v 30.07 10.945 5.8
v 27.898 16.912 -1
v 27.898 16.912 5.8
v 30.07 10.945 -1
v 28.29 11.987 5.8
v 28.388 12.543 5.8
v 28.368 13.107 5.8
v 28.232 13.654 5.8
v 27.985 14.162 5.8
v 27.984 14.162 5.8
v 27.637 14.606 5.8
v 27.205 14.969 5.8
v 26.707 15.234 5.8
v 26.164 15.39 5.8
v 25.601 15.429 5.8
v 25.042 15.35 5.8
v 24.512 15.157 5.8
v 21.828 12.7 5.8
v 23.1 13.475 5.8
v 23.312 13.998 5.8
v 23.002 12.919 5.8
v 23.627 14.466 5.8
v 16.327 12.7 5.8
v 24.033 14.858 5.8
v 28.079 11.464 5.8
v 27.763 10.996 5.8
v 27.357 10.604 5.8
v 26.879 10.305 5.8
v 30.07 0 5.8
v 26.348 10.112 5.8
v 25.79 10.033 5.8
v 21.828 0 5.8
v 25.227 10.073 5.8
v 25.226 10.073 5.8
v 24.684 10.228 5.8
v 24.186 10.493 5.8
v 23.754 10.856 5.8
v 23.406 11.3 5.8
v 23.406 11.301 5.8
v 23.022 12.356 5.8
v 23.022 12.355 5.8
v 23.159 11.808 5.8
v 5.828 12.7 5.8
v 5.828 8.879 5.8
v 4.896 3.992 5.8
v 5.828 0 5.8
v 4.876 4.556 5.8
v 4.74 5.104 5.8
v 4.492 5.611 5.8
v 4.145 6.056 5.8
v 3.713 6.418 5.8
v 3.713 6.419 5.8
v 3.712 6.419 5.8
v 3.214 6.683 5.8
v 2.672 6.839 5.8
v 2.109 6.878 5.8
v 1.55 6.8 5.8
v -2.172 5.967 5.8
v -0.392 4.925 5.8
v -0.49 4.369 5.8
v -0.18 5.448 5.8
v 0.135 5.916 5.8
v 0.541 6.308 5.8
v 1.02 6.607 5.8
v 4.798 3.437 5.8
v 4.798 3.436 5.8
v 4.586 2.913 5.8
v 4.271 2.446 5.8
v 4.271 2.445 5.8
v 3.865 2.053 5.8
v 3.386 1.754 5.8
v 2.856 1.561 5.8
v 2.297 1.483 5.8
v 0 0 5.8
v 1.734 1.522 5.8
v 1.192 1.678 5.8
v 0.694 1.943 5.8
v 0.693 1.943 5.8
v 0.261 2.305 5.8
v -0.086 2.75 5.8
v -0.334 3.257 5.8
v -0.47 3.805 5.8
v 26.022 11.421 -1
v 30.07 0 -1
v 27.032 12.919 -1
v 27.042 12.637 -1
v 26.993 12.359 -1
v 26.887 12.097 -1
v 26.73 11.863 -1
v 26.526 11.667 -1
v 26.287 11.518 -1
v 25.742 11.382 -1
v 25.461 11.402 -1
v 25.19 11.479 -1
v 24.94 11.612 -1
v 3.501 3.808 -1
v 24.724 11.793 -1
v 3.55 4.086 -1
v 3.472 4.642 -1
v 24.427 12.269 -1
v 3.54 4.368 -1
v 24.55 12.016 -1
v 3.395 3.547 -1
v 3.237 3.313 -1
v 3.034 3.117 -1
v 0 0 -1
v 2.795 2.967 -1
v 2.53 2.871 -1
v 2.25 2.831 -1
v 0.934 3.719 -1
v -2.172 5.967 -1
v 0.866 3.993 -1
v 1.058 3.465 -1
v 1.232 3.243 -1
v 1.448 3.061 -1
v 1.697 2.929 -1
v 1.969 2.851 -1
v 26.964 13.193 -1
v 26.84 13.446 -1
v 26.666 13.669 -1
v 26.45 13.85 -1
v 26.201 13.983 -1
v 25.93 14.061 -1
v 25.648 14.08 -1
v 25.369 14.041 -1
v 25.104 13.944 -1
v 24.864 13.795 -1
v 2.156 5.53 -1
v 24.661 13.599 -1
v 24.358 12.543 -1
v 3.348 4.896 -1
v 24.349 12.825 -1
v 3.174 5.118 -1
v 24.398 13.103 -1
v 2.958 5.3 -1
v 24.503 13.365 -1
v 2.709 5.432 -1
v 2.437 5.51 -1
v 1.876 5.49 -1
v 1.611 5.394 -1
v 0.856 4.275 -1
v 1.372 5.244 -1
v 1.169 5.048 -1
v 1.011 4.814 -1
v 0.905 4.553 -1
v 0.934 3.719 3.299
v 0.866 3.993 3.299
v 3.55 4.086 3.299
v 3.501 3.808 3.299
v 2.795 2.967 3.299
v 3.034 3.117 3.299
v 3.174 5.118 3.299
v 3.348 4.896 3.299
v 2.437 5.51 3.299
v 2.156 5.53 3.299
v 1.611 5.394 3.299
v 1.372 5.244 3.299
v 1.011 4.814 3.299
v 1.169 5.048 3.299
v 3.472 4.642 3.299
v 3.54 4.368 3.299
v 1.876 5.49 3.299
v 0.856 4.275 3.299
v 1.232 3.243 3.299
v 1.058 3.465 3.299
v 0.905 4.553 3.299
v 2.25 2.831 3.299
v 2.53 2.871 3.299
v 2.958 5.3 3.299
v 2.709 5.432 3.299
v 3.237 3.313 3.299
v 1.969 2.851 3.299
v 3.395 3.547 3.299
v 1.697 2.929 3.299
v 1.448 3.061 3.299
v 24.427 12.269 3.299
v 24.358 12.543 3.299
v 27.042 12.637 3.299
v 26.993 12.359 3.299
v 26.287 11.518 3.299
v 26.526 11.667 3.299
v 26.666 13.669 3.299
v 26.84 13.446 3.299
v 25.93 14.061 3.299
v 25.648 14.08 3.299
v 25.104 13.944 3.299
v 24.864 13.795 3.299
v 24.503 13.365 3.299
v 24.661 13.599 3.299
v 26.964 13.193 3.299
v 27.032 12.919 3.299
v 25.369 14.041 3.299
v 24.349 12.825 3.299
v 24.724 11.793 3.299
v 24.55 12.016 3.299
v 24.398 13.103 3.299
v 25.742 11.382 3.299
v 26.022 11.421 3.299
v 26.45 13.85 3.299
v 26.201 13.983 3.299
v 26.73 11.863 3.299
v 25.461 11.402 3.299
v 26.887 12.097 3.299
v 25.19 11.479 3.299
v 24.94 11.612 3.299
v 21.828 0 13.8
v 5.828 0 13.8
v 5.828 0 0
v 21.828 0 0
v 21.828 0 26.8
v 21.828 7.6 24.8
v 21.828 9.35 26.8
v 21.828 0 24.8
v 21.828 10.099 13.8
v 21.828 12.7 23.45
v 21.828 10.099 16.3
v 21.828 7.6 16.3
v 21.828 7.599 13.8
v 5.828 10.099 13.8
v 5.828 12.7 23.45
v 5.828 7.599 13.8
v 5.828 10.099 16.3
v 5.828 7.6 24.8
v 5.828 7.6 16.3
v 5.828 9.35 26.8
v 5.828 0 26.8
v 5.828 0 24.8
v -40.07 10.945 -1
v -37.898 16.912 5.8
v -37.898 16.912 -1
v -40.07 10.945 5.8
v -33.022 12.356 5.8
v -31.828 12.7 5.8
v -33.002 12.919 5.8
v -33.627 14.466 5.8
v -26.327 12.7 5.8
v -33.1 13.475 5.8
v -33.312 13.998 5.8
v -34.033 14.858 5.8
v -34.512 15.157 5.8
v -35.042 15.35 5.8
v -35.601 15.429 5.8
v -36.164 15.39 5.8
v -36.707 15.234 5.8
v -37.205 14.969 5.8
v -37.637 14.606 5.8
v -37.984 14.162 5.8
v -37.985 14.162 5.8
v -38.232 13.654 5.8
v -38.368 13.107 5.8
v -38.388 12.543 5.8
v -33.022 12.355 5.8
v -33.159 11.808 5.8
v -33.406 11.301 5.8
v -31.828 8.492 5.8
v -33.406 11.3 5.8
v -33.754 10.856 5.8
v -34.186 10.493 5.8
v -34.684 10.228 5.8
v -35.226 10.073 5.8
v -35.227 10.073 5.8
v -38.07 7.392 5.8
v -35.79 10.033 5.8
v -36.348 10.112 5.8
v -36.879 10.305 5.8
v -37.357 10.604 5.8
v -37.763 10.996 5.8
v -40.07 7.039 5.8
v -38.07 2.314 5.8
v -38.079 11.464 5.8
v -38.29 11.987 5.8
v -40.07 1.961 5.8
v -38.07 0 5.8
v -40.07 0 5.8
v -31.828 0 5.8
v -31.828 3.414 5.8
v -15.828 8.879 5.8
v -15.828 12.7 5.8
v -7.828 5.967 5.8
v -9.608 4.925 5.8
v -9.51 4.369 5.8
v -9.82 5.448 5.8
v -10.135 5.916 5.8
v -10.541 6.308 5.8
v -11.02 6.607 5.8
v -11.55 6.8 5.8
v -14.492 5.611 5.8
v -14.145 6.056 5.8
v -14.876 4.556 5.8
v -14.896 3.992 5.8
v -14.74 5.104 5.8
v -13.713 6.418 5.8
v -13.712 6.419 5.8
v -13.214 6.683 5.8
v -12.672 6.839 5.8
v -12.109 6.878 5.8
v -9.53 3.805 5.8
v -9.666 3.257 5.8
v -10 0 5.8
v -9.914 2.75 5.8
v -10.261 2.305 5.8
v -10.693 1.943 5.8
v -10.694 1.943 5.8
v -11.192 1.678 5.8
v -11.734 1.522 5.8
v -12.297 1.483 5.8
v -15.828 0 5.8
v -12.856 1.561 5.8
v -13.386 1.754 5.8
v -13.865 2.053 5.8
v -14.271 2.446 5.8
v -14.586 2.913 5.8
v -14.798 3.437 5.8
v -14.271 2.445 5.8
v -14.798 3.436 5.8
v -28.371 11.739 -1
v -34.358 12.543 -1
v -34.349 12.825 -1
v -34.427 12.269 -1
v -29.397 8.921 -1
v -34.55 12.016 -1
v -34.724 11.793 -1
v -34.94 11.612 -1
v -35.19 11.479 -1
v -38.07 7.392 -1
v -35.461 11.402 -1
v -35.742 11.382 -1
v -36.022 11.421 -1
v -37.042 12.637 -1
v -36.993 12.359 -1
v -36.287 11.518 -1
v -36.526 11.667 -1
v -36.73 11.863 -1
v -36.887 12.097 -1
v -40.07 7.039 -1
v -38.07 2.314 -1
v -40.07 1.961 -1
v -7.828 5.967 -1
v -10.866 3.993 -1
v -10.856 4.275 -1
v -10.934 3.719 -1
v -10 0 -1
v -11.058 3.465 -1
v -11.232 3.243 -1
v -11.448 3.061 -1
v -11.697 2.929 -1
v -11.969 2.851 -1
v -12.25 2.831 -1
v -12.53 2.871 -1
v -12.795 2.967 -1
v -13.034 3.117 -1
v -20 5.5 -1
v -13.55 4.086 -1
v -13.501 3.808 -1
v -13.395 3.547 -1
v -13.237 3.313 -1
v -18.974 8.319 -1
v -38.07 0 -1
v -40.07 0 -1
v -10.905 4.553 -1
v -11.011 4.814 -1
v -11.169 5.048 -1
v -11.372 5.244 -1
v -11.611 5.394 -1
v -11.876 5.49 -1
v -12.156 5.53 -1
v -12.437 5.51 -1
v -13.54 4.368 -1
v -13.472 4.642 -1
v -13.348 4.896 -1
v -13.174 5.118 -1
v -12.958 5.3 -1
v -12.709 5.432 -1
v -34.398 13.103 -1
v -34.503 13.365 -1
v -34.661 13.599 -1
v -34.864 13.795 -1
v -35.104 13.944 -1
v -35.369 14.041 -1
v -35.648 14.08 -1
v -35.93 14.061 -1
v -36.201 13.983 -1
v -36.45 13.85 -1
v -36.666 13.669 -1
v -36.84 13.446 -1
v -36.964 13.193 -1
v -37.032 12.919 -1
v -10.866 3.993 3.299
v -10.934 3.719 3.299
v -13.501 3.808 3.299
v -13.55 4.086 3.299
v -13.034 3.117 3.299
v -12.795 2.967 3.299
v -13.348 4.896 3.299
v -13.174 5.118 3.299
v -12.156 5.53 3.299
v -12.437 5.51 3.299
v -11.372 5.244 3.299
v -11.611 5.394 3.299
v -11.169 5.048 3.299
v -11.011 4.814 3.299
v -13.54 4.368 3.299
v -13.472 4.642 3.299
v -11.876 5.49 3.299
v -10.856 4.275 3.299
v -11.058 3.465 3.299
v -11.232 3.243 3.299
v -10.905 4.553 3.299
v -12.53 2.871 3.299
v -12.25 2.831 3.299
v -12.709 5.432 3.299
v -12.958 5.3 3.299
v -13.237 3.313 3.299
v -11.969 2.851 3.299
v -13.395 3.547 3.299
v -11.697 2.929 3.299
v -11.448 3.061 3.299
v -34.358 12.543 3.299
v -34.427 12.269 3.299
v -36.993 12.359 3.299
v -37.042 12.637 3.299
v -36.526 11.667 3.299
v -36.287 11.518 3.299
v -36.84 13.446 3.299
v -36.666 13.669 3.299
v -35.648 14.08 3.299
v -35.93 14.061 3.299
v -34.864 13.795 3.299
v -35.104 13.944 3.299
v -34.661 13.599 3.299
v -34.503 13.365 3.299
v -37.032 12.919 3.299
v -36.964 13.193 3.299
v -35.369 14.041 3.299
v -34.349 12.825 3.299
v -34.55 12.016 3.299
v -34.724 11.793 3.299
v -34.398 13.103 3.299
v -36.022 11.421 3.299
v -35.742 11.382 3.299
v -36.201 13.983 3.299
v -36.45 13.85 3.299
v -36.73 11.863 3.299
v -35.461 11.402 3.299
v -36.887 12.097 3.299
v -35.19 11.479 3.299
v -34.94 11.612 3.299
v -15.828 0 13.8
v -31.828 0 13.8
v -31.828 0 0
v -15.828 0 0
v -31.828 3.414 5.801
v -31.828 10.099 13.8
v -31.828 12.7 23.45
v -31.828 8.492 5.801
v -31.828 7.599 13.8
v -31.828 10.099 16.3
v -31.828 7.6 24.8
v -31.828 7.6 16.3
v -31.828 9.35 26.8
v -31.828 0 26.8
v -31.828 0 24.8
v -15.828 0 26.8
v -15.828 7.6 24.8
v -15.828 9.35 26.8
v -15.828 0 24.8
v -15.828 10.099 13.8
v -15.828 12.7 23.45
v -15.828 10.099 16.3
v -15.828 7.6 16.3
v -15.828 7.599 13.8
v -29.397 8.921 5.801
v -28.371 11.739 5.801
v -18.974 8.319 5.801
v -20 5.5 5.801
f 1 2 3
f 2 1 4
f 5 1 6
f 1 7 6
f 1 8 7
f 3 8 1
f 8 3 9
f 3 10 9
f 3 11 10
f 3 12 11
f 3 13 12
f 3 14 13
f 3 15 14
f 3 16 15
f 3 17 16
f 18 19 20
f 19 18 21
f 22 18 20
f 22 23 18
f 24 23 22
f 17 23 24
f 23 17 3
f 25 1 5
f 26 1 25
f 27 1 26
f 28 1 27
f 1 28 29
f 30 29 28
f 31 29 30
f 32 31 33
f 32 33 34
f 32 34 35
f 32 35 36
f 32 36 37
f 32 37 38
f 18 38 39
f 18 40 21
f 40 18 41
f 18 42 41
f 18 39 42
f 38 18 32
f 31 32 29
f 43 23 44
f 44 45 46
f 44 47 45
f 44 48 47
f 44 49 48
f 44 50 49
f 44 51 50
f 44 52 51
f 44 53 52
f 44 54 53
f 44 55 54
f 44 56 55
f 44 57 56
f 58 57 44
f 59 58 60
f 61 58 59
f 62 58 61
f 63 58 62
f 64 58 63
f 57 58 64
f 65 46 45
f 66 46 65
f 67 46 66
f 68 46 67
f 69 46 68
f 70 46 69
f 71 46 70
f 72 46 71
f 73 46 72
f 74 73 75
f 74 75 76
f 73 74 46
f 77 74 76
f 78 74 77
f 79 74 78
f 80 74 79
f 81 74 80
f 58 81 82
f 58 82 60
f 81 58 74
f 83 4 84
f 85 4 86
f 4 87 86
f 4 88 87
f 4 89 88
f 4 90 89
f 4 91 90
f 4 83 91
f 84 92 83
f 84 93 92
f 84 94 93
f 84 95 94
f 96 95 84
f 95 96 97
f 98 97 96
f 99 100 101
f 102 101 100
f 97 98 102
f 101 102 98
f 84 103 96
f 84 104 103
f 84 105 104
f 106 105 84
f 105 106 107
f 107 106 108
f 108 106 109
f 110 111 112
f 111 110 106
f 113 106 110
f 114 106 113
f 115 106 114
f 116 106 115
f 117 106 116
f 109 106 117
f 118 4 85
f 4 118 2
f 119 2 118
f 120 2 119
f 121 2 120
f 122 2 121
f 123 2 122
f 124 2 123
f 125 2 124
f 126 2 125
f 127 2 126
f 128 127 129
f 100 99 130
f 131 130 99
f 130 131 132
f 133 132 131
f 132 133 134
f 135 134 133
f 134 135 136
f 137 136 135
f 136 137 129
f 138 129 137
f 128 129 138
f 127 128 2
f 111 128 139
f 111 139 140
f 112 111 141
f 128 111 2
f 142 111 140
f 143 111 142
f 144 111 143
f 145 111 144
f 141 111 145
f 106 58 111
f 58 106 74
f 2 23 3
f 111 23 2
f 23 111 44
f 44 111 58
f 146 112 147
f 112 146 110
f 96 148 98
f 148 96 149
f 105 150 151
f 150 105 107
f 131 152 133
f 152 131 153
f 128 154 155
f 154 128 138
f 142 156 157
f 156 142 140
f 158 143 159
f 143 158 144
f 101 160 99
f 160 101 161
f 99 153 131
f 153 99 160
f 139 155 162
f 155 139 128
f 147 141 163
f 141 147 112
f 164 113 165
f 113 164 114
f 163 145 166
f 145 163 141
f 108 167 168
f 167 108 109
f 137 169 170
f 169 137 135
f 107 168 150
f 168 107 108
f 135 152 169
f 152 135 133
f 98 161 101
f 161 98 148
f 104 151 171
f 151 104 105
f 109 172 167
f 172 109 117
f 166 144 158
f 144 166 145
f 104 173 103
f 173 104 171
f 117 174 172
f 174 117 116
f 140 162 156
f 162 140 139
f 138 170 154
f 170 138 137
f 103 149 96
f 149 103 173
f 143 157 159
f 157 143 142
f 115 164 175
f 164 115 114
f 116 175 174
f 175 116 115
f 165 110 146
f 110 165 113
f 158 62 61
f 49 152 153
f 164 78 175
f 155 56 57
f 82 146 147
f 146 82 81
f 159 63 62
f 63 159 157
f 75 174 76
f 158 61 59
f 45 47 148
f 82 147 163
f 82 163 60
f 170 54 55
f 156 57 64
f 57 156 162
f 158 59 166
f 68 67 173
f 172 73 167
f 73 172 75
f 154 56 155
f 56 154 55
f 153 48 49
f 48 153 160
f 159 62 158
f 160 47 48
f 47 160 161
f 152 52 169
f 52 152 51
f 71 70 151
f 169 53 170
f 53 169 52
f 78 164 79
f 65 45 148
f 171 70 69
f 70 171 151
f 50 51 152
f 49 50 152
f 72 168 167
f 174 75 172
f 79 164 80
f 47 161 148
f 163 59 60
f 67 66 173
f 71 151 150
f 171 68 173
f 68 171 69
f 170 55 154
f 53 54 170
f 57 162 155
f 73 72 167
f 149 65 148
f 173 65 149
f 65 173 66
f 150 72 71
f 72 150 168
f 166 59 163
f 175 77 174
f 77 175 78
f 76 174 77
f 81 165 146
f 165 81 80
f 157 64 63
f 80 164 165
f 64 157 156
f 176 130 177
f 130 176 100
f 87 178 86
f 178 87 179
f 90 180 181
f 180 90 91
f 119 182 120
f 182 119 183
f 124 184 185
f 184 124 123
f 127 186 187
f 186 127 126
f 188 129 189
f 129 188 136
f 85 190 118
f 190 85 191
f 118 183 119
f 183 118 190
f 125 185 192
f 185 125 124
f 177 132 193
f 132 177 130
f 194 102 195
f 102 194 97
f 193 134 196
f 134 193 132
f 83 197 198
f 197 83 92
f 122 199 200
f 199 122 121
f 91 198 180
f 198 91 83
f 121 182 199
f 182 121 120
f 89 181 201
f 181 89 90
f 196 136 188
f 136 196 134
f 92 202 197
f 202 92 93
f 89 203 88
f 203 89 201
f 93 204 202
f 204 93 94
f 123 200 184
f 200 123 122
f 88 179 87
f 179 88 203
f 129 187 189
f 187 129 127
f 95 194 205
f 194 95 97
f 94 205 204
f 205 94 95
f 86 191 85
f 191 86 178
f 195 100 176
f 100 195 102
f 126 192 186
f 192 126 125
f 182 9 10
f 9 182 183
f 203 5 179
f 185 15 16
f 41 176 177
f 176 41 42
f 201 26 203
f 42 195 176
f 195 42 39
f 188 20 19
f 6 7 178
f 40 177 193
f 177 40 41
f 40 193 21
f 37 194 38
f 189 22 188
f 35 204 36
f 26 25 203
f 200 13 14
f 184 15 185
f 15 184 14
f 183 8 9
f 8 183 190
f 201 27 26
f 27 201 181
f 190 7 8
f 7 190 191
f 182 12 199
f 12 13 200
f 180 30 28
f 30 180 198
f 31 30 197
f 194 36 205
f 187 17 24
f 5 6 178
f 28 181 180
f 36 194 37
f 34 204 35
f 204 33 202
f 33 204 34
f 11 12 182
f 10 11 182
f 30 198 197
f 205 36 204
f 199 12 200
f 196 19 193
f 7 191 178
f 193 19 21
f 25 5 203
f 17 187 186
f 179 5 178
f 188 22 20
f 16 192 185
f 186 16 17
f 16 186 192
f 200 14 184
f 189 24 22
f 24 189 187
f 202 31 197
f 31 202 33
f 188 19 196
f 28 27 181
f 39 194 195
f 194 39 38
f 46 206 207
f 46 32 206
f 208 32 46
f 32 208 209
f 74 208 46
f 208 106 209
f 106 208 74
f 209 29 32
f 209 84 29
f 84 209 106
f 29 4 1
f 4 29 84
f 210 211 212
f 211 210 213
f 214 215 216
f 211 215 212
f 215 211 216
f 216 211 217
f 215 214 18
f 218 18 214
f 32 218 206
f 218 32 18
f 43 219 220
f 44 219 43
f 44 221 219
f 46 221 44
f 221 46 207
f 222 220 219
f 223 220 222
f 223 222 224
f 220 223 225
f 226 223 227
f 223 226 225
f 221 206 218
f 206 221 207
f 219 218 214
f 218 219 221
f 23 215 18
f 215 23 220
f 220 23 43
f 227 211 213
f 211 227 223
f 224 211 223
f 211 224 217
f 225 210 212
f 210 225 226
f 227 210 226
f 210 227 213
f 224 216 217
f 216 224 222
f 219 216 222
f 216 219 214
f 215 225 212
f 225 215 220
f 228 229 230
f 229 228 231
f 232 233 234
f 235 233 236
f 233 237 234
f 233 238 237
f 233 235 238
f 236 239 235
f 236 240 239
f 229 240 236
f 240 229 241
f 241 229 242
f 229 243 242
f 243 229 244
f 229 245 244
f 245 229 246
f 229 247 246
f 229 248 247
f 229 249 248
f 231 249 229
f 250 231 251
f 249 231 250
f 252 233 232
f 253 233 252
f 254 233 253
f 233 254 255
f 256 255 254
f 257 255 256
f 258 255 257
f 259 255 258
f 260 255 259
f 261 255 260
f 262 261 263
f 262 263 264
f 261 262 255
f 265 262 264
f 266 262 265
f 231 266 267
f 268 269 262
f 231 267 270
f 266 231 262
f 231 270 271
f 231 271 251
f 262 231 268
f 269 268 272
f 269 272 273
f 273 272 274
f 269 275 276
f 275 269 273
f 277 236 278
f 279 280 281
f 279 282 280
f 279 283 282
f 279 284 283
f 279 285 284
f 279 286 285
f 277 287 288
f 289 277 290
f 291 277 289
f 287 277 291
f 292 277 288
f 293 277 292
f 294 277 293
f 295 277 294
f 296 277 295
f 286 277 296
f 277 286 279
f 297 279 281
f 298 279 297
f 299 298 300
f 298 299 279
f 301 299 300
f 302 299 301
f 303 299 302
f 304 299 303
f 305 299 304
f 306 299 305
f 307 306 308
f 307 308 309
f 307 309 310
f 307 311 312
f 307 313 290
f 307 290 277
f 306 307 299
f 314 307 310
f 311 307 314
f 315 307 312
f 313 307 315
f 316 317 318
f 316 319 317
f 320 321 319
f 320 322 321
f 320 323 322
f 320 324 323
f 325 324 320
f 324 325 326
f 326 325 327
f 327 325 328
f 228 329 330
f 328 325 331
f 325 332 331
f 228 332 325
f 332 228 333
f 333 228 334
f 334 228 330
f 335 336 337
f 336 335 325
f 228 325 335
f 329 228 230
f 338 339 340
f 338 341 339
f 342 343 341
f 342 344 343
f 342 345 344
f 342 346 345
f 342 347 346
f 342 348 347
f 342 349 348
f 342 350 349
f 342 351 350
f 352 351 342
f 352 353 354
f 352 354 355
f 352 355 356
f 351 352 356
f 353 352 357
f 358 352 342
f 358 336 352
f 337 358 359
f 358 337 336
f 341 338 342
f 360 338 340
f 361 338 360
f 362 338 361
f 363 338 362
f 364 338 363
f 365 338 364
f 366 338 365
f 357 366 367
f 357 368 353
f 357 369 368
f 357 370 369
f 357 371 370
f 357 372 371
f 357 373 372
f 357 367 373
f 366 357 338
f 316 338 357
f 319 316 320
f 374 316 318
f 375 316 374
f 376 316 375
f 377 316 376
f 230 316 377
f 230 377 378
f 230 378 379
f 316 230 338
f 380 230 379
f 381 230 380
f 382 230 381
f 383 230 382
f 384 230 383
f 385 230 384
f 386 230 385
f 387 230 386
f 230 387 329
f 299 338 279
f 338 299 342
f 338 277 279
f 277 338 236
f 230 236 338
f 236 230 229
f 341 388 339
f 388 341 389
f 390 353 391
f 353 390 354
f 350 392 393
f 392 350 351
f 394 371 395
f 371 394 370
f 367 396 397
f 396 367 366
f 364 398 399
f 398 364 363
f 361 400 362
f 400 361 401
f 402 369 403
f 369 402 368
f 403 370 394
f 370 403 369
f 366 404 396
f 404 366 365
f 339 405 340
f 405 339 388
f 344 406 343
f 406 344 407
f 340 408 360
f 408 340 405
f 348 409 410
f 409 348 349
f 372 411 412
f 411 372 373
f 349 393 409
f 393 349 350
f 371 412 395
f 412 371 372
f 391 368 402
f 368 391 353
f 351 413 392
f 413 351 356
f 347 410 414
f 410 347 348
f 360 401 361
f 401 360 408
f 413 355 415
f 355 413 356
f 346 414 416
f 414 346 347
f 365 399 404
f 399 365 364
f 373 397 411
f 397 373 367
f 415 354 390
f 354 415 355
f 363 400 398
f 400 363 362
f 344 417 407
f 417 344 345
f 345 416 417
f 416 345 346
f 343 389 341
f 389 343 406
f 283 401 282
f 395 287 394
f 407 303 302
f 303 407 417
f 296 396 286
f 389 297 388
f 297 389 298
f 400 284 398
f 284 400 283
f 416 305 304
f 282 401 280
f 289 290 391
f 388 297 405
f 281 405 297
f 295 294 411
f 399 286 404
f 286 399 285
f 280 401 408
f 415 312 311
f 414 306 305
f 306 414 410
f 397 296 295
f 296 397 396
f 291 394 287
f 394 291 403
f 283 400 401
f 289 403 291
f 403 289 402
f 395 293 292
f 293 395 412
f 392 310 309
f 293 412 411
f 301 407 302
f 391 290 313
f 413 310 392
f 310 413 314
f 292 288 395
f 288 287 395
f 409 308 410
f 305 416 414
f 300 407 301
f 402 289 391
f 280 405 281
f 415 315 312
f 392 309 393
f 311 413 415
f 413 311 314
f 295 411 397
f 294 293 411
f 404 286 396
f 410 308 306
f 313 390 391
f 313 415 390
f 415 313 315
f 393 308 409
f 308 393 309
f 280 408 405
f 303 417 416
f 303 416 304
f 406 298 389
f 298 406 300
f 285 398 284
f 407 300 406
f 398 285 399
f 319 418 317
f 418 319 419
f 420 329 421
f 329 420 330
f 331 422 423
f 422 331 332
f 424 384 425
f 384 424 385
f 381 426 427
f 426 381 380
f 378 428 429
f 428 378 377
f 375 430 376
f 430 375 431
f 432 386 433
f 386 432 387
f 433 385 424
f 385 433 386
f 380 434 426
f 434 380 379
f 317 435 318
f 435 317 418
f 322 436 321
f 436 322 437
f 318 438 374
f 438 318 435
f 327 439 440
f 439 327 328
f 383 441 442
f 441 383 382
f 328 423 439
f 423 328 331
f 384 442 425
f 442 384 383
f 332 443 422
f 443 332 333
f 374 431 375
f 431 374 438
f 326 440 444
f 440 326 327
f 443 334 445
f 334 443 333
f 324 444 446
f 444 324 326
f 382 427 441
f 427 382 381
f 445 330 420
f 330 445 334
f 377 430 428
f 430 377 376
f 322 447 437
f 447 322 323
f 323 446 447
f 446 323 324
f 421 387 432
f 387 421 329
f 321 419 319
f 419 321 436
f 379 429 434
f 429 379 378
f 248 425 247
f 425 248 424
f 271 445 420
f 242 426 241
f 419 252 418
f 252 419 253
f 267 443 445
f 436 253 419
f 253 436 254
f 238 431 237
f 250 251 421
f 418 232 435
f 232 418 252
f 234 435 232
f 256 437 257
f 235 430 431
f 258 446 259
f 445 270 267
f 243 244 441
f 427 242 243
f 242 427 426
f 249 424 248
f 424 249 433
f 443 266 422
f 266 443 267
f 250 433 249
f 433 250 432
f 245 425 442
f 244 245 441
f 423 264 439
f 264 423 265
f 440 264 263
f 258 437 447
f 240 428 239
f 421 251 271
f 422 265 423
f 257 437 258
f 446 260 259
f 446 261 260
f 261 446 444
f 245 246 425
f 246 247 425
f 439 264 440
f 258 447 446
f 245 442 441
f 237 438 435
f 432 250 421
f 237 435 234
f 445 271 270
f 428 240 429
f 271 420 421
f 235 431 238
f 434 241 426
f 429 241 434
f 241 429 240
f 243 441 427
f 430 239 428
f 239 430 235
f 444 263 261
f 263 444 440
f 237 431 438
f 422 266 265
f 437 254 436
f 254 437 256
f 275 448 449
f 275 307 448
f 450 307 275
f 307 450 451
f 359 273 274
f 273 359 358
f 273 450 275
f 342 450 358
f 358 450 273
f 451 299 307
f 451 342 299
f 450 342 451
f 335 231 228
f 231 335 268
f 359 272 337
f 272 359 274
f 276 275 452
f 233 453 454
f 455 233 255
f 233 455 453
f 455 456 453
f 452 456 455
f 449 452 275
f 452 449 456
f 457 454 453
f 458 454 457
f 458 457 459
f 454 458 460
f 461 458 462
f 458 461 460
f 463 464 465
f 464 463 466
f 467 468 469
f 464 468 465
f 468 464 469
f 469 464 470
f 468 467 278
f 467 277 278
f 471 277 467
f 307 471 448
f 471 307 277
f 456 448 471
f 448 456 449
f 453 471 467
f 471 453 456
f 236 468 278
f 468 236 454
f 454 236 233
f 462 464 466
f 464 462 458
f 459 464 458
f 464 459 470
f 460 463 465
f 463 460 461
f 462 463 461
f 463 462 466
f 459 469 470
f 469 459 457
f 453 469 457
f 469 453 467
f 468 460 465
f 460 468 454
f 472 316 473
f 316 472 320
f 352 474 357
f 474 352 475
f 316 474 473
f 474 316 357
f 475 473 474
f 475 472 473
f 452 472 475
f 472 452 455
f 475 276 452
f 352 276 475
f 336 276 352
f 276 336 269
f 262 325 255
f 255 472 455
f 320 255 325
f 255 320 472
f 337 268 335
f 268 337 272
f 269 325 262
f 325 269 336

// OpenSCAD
//
// ktLED1
//

gap1 = 0.001;
gap2 = 0.002;
th = 2;

d1 = 7+1;
d2 = 12-1;
d3 = 2.1+0.4;
h1 = 9.6-2;
h2 = 2.1+0.4;
th1 = 5.1;
th2 = 2;
r1 = 20;
x1 = 16;

A = 1;
B = 1;

if(A)
{
    right();
}

if(B)
{
    
    translate( [-10, 0, -10] )
    rotate([0, 180, 0])
    {
    difference()
    {
        mirror( v=[0, 0, 1] )
        translate( [0, 0, 10] )
        right();
        
        translate( [10, 5.5, -10-5.8-gap1] )
        rotate( [0, 0, 20] )
        cube( [10, 3, 5.8+gap2+1] );
        translate( [10, 5.5, -10-5.8-gap1] )
        rotate( [0, 0, -10] )
        cube( [22, 3, 5.8+gap2+1] );
        translate( [15, 6.65, -10-5.8-gap1] )
        rotate( [0, 0, -10] )
        cube( [22, 3, 5.8+gap2+1] );
    }
            translate( [32*cos(r1)-2, 0, -10-5.8] )
            cube( [2, 8, 5.8+1] );
    }
}


module right()
{
    rotate( [0, 0, r1] )
    {
        difference()
        {
            union()
            {
                translate( [0, 0, -1] )
                cube( [32, 6.35, 5.8+1] );
                translate( [0, -15, -1] )
                cube( [32, 15, 5.8+1] );
            }
            translate( [(32-25)/2, 6.35/2, 0] )
            {
                translate( [0, 0, 3.3/2] )
                cylinder( h=3.3+gap2+2, r=2.7/2, center=true, $fn=30 );
                translate( [0, 0, 3.3+2.5/2] )
                cylinder( h=2.5+gap2, r1=2.7/2, r2=5.4/2, center=true, $fn=30 );
                translate( [25, 0, 3.3/2] )
                cylinder( h=3.3+gap2+2, r=2.7/2, center=true, $fn=30 );
                translate( [25, 0, 3.3+2.5/2] )
                cylinder( h=2.5+gap2, r1=2.7/2, r2=5.4/2, center=true, $fn=30 );
            }
            rotate( [0, 0, -r1] )
            {
                translate( [0, -15, 0-gap1-1] )
                cube( [50, 15, 5.8+gap2+1] );
                translate( [32*cos(r1), -gap1, 0-gap1-1] )
                cube( [10, 15, 5.8+gap2+1] );
            }
        }
    }
    
    translate( [-(6.35*cos(90-r1))+8, 0, 0] )
    difference()
    {
        union()
        {
            translate( [0, 0, 0] )
            cube( [x1, 6.35*cos(r1), 5.8] );
            translate( [0, 0, 5.8] )
            cube( [x1, h1+th1, d1] );
            translate( [0, h1, 5.8+d1] )
            cube( [x1, th1, d2] );
            translate( [0, 0, 5.8+d1+d2] )
            cube( [x1, h1+th1, th2] );
        }
        translate( [-gap1, h1-gap1, 5.8+d1] )
        cube( [32+gap2, h2, d3] );

        translate( [-gap1, 6.35+5-2, 5.8+d1+d2+th2] )
        rotate( [-45, 0, 0] )
        cube( [x1+gap2, 10, 10] );
    }
}
